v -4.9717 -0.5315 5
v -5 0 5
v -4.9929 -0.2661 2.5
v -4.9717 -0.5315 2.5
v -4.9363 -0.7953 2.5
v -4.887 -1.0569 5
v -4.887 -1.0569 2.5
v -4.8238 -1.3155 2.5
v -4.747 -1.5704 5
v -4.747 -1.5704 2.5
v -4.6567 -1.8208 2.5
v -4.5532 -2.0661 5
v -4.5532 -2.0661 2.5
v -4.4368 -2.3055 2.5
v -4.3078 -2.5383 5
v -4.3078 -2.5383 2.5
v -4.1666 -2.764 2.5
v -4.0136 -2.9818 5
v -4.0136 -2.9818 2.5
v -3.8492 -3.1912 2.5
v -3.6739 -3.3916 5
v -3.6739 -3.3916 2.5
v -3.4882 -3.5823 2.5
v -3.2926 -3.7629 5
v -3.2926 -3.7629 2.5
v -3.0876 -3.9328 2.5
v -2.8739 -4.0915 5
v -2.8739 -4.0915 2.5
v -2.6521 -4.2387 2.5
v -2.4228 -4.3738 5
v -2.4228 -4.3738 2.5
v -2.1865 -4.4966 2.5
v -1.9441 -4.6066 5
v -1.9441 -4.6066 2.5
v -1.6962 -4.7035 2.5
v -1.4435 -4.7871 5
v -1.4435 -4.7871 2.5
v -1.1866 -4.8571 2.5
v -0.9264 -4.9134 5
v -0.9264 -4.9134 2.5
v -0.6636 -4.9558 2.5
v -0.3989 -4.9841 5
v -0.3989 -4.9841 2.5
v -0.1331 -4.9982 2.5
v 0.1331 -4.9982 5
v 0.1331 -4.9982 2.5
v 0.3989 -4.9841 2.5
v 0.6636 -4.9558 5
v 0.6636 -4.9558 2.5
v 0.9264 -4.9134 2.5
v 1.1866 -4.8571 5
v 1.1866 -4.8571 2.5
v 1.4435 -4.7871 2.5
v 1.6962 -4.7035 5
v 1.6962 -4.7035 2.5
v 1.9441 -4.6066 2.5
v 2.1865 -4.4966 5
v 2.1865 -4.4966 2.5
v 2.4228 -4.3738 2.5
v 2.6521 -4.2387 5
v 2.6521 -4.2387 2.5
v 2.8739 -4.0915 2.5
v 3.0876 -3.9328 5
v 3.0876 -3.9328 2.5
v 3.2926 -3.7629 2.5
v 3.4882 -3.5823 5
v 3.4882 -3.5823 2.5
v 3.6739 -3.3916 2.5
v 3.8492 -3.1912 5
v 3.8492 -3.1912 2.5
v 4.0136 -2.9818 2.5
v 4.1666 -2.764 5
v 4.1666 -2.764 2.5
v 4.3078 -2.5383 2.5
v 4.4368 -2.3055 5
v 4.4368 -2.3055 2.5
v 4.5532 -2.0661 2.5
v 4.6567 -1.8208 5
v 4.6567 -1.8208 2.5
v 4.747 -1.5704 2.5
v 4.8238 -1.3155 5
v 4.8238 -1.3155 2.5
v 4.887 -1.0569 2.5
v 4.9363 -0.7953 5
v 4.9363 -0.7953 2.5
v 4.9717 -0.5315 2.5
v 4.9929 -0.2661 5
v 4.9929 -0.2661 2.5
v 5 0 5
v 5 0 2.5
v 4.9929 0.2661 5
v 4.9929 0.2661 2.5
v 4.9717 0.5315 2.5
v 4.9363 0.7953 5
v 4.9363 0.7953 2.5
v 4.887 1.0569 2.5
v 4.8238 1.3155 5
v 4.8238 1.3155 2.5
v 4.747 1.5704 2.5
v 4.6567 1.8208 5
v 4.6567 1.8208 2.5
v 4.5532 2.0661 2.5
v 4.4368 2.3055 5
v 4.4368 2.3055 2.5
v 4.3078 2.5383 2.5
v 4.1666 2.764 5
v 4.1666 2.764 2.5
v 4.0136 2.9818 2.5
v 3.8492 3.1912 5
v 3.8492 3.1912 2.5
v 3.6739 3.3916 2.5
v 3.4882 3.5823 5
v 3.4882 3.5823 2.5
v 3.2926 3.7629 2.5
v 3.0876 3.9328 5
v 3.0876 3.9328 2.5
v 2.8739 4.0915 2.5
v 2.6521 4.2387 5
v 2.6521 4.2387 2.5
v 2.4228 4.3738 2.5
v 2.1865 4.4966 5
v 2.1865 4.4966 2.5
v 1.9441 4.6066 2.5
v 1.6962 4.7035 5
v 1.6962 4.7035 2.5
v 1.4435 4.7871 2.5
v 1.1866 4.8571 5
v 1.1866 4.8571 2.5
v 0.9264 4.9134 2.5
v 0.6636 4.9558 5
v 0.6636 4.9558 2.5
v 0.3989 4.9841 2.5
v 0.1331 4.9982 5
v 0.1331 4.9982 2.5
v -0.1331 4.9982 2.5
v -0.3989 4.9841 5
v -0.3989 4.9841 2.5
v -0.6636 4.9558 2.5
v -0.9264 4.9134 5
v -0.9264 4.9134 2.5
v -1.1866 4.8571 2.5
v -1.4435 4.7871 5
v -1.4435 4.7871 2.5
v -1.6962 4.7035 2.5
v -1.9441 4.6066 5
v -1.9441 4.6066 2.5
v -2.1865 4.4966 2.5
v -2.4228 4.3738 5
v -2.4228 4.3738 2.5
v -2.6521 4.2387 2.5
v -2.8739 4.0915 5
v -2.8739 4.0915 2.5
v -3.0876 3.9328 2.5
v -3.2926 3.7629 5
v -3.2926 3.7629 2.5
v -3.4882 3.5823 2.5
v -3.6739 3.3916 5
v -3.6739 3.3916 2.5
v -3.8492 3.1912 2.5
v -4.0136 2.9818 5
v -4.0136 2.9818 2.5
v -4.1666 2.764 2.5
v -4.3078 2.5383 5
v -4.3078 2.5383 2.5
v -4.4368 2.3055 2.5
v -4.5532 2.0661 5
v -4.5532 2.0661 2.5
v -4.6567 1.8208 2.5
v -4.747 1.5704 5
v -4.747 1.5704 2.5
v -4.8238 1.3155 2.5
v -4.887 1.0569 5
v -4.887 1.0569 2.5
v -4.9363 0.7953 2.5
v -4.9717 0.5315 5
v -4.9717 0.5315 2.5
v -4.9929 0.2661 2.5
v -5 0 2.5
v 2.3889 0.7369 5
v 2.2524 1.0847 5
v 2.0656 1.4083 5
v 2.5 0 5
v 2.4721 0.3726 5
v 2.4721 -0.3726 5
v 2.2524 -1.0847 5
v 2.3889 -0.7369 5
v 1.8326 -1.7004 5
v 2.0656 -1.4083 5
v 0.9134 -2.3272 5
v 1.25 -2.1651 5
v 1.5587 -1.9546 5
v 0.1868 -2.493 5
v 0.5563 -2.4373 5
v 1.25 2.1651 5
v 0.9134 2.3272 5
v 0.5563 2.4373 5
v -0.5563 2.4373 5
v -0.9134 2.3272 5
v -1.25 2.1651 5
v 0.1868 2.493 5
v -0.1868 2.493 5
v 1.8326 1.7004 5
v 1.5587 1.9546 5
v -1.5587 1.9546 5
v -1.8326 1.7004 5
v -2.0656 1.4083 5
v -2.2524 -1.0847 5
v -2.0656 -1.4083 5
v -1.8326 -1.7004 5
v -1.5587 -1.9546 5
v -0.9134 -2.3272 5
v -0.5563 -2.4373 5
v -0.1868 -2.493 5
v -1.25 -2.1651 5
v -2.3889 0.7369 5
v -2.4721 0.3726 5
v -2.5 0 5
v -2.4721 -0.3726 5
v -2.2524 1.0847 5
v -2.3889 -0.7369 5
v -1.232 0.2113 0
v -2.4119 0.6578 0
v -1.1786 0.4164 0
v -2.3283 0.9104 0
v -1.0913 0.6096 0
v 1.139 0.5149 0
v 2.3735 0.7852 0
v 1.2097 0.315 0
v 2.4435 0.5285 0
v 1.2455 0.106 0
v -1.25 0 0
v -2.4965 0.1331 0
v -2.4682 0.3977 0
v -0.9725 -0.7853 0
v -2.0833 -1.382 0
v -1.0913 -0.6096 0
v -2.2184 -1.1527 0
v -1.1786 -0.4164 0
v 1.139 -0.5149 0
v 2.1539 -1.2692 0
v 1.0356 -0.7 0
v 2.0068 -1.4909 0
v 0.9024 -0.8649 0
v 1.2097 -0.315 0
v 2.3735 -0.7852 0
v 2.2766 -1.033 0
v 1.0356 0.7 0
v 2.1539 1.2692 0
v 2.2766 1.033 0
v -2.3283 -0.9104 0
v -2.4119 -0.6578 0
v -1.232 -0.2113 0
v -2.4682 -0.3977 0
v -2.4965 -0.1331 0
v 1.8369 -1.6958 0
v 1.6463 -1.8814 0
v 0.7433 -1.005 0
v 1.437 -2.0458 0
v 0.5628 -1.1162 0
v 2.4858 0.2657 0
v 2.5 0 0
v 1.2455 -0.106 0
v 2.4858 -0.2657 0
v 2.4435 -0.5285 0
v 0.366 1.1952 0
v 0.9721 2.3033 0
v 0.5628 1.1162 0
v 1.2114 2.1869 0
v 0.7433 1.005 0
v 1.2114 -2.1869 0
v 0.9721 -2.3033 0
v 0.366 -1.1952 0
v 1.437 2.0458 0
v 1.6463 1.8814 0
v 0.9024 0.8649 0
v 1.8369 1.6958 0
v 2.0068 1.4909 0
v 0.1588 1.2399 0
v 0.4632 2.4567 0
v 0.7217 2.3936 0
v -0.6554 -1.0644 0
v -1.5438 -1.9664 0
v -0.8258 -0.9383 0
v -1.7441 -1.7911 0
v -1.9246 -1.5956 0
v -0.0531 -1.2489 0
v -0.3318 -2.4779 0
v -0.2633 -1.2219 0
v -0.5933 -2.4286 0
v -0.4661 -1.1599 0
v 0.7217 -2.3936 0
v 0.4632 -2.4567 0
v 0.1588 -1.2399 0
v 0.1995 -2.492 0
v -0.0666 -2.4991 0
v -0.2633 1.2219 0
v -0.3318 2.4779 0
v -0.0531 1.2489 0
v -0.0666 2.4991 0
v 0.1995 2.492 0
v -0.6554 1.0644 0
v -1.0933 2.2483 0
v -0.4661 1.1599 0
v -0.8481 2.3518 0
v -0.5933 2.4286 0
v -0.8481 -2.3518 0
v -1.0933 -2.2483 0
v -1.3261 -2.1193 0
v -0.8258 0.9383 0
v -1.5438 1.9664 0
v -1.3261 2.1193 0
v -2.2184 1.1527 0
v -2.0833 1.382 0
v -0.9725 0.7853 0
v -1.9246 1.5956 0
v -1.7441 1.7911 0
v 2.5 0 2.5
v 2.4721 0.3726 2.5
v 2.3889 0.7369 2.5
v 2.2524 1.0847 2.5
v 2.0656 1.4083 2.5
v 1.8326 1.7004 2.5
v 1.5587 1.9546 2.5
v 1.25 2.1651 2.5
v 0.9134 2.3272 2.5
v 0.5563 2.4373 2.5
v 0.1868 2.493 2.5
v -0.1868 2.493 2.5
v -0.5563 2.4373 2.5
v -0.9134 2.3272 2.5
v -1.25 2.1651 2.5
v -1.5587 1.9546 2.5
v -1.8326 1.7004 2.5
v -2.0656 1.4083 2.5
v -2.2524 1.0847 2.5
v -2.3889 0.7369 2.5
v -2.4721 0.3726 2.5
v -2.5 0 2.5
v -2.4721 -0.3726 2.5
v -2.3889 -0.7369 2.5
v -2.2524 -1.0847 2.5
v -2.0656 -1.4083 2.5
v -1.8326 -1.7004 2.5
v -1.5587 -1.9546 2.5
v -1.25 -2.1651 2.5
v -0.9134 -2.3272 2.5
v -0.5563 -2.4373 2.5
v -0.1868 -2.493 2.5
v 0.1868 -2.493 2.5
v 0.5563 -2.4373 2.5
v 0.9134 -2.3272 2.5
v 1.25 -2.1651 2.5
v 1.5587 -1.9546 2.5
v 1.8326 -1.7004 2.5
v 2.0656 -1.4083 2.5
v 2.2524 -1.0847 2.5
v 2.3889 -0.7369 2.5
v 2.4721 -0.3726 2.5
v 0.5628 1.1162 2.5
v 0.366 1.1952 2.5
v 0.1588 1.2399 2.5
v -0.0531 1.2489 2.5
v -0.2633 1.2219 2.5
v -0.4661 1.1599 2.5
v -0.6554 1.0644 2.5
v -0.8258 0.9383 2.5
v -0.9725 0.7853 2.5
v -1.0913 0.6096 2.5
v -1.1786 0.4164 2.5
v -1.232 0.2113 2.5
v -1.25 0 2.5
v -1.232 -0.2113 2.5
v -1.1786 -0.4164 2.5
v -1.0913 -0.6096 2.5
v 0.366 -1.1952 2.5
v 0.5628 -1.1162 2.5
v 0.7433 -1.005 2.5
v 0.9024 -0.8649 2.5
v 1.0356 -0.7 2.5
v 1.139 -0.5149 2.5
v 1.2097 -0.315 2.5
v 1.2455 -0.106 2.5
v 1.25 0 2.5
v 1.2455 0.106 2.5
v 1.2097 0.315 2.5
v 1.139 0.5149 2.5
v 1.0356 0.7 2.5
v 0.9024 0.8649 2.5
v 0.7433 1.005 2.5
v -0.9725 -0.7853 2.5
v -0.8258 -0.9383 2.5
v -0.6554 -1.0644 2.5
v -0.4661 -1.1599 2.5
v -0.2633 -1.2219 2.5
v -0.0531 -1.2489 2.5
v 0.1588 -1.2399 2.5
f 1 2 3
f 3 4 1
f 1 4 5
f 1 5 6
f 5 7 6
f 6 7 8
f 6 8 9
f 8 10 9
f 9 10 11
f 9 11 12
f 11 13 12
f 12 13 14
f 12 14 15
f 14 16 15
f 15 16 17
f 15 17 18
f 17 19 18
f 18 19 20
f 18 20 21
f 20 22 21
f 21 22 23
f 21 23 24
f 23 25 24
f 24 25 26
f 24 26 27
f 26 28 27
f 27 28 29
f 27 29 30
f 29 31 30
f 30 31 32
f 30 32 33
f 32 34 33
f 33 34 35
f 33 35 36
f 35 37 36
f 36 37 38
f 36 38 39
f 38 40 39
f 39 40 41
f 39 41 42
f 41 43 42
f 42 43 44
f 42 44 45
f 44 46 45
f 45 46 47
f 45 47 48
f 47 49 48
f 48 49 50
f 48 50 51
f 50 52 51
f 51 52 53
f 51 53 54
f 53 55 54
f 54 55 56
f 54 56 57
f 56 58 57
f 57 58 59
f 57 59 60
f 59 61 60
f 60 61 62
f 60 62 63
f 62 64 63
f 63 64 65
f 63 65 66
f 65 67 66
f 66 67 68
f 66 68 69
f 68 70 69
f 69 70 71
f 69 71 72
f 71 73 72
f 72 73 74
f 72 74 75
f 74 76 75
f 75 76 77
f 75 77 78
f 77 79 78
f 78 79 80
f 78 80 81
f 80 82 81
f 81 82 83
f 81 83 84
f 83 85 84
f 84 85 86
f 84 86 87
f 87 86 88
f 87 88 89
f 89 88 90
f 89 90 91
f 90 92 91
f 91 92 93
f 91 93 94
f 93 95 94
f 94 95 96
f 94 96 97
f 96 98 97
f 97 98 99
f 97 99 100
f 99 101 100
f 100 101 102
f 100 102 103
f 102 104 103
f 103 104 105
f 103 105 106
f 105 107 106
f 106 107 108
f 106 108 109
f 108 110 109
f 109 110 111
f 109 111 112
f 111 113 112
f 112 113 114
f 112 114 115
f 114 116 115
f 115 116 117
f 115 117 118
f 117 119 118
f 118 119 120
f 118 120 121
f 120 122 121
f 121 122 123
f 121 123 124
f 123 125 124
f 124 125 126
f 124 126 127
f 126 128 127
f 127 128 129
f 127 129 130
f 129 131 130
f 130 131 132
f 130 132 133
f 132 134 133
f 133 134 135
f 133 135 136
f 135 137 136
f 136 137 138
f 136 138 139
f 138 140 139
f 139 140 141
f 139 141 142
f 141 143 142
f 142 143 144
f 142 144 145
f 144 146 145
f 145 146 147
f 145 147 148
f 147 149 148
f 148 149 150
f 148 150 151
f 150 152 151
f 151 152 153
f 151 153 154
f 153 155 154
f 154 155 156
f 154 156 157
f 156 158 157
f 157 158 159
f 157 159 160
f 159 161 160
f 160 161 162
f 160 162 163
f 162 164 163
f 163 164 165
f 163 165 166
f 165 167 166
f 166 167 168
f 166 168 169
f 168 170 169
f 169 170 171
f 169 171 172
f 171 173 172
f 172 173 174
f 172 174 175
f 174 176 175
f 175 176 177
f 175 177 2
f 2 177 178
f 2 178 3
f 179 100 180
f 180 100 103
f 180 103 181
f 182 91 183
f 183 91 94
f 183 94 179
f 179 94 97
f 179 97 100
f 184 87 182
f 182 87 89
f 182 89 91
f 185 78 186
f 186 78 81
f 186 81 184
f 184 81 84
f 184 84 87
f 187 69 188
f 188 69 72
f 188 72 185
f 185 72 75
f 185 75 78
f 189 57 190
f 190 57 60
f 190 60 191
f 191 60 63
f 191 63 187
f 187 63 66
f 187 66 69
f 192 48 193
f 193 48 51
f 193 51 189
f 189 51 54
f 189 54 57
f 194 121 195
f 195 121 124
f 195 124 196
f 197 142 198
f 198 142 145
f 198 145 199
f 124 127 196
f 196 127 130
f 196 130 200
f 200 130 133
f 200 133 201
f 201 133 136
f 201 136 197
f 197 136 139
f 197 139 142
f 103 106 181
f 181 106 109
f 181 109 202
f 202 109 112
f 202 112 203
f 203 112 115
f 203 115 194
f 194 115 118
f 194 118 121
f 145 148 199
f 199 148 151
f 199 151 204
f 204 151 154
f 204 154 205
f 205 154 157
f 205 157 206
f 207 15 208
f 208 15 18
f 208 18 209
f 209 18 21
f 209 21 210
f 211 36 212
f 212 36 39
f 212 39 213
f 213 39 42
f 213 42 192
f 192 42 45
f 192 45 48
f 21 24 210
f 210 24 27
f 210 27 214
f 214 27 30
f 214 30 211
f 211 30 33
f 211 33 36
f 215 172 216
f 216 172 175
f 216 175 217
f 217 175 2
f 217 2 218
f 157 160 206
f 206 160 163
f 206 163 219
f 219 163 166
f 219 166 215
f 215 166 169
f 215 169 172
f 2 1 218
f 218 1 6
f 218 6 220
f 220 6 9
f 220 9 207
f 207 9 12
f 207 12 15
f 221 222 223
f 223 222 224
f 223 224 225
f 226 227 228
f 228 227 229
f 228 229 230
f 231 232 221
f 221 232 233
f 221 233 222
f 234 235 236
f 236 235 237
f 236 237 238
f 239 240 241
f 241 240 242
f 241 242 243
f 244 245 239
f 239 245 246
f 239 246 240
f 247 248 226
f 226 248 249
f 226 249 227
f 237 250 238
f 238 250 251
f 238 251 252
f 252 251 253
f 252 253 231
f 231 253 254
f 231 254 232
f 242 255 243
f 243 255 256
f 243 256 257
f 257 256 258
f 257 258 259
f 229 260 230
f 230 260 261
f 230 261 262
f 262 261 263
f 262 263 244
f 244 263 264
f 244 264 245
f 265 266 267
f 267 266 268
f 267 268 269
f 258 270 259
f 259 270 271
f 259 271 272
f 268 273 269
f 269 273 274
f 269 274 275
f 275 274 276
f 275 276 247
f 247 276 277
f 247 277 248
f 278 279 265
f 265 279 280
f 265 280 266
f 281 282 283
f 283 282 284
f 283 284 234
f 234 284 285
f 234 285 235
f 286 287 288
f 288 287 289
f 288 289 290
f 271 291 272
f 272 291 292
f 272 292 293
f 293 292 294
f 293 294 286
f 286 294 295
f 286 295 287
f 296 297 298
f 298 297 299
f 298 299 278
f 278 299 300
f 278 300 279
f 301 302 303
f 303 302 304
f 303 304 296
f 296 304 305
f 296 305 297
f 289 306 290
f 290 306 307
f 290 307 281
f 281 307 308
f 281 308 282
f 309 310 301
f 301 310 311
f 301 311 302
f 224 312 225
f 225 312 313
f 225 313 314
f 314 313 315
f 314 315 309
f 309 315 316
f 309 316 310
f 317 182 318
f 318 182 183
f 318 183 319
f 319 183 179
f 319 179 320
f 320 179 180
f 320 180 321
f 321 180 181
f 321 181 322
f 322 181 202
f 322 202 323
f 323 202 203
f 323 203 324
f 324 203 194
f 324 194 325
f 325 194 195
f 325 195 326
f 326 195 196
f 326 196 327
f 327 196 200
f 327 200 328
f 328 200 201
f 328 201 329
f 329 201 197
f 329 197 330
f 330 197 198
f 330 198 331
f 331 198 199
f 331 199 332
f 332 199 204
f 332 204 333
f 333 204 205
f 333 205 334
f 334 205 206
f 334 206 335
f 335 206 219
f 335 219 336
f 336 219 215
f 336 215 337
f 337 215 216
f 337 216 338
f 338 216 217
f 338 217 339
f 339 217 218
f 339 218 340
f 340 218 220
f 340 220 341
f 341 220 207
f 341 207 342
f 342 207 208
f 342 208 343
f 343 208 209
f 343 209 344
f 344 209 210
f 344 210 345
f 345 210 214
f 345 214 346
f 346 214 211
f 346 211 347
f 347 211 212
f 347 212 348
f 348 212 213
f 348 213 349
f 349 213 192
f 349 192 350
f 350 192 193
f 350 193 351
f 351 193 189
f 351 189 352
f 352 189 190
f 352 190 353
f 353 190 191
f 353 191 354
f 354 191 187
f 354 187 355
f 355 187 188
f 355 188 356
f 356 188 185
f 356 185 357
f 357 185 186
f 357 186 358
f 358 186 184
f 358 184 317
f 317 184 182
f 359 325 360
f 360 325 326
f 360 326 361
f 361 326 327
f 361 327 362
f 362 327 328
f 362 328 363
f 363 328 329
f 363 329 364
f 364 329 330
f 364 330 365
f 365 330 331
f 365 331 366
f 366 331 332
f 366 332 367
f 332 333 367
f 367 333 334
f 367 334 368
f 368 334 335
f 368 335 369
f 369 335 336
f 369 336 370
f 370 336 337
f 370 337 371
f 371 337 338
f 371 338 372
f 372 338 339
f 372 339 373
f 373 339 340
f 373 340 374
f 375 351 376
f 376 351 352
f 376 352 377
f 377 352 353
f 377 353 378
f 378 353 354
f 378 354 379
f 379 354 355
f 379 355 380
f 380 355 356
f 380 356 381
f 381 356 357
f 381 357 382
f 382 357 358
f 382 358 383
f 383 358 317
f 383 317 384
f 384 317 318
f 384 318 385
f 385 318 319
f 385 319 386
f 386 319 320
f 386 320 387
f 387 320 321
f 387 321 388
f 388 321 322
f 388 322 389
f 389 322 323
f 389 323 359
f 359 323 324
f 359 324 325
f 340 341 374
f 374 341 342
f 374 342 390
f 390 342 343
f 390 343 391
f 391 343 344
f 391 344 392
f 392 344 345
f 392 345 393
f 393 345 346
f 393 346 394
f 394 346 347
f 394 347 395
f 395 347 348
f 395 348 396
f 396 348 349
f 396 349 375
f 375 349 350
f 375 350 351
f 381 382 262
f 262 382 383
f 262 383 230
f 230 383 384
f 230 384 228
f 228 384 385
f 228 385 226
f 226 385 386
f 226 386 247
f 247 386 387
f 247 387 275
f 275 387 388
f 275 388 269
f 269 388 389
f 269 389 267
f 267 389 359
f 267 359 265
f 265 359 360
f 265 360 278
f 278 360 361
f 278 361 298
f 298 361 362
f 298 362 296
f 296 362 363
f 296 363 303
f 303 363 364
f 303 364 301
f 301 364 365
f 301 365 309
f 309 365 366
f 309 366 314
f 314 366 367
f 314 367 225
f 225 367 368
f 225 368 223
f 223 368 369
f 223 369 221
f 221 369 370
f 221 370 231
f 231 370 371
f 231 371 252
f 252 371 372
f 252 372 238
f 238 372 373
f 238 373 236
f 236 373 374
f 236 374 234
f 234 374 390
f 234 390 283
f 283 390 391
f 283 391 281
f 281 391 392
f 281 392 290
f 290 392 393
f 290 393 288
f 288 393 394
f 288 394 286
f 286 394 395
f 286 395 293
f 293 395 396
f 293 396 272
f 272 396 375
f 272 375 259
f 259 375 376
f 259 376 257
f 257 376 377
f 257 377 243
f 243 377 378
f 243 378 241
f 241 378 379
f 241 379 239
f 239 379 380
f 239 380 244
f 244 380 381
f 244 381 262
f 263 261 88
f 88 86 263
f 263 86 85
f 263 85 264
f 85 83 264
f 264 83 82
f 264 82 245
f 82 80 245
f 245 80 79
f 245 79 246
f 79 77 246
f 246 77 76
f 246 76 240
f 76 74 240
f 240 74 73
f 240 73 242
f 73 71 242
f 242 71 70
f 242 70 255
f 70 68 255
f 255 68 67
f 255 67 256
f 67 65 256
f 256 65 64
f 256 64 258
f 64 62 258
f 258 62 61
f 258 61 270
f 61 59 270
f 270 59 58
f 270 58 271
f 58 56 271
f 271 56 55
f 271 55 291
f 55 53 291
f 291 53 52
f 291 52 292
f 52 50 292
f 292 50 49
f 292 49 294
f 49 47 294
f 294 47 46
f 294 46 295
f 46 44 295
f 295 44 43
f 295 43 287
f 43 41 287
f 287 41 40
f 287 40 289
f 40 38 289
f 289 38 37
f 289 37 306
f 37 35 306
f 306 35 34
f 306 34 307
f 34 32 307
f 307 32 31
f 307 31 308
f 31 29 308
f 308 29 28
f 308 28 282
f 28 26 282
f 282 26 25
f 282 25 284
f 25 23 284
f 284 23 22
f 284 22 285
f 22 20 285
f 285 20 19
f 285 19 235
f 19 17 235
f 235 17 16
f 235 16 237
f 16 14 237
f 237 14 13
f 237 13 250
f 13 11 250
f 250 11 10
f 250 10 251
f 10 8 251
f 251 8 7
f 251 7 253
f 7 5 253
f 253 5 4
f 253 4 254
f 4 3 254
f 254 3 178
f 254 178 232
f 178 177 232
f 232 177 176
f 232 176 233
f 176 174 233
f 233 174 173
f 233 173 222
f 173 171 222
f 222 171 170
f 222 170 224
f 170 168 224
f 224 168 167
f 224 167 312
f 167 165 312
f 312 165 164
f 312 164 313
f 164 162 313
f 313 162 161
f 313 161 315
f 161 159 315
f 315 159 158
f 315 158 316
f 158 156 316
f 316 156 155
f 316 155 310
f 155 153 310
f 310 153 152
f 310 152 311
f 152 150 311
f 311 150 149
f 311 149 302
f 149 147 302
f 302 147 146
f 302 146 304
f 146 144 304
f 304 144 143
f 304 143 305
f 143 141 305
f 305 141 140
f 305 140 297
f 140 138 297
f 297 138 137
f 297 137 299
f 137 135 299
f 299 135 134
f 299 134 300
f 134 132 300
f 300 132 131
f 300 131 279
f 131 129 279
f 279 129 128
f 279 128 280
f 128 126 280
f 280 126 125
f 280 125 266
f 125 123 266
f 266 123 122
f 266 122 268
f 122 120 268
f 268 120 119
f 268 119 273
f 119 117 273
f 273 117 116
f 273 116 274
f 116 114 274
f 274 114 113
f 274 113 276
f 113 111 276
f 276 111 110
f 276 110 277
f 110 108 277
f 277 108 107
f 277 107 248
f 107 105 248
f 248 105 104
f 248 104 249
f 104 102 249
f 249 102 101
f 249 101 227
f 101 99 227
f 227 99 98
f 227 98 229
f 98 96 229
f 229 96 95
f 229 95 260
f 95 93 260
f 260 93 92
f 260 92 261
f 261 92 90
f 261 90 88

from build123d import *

# Parameters (mm, degrees)
SKETCH1_R           = 5
BOSS_EXTRUDE1_DEPTH = 5
SKETCH2_R           = 2.5
CUT_EXTRUDE1_DEPTH  = 2.5
SKETCH3_R           = 1.25
CUT_EXTRUDE2_DEPTH  = 9.660254038
CHAMFER1_SIZE       = 2.5


with BuildPart() as part:
    # Sketch1 → Boss-Extrude1 (new body)
    with BuildSketch(Plane.XY):
        Circle(SKETCH1_R)
    extrude(amount=BOSS_EXTRUDE1_DEPTH)

    # Sketch2 → Cut-Extrude1 (cut)
    with BuildSketch(Plane.XY.offset(5)):
        Circle(SKETCH2_R)
    extrude(amount=-CUT_EXTRUDE1_DEPTH, mode=Mode.SUBTRACT)

    # Sketch3 → Cut-Extrude2 (cut, through all)
    with BuildSketch(Plane(origin=(0, 0, 0), x_dir=(-1, 0, 0), z_dir=(0, 0, -1))):
        Circle(SKETCH3_R)
    extrude(amount=-CUT_EXTRUDE2_DEPTH, mode=Mode.SUBTRACT)

    # Chamfer1
    chamfer1_edges = [part.edges().sort_by_distance(p)[0] for p in [
        (-5, 0, 0),
    ]]
    chamfer(chamfer1_edges, length=CHAMFER1_SIZE)


solid = part.part
